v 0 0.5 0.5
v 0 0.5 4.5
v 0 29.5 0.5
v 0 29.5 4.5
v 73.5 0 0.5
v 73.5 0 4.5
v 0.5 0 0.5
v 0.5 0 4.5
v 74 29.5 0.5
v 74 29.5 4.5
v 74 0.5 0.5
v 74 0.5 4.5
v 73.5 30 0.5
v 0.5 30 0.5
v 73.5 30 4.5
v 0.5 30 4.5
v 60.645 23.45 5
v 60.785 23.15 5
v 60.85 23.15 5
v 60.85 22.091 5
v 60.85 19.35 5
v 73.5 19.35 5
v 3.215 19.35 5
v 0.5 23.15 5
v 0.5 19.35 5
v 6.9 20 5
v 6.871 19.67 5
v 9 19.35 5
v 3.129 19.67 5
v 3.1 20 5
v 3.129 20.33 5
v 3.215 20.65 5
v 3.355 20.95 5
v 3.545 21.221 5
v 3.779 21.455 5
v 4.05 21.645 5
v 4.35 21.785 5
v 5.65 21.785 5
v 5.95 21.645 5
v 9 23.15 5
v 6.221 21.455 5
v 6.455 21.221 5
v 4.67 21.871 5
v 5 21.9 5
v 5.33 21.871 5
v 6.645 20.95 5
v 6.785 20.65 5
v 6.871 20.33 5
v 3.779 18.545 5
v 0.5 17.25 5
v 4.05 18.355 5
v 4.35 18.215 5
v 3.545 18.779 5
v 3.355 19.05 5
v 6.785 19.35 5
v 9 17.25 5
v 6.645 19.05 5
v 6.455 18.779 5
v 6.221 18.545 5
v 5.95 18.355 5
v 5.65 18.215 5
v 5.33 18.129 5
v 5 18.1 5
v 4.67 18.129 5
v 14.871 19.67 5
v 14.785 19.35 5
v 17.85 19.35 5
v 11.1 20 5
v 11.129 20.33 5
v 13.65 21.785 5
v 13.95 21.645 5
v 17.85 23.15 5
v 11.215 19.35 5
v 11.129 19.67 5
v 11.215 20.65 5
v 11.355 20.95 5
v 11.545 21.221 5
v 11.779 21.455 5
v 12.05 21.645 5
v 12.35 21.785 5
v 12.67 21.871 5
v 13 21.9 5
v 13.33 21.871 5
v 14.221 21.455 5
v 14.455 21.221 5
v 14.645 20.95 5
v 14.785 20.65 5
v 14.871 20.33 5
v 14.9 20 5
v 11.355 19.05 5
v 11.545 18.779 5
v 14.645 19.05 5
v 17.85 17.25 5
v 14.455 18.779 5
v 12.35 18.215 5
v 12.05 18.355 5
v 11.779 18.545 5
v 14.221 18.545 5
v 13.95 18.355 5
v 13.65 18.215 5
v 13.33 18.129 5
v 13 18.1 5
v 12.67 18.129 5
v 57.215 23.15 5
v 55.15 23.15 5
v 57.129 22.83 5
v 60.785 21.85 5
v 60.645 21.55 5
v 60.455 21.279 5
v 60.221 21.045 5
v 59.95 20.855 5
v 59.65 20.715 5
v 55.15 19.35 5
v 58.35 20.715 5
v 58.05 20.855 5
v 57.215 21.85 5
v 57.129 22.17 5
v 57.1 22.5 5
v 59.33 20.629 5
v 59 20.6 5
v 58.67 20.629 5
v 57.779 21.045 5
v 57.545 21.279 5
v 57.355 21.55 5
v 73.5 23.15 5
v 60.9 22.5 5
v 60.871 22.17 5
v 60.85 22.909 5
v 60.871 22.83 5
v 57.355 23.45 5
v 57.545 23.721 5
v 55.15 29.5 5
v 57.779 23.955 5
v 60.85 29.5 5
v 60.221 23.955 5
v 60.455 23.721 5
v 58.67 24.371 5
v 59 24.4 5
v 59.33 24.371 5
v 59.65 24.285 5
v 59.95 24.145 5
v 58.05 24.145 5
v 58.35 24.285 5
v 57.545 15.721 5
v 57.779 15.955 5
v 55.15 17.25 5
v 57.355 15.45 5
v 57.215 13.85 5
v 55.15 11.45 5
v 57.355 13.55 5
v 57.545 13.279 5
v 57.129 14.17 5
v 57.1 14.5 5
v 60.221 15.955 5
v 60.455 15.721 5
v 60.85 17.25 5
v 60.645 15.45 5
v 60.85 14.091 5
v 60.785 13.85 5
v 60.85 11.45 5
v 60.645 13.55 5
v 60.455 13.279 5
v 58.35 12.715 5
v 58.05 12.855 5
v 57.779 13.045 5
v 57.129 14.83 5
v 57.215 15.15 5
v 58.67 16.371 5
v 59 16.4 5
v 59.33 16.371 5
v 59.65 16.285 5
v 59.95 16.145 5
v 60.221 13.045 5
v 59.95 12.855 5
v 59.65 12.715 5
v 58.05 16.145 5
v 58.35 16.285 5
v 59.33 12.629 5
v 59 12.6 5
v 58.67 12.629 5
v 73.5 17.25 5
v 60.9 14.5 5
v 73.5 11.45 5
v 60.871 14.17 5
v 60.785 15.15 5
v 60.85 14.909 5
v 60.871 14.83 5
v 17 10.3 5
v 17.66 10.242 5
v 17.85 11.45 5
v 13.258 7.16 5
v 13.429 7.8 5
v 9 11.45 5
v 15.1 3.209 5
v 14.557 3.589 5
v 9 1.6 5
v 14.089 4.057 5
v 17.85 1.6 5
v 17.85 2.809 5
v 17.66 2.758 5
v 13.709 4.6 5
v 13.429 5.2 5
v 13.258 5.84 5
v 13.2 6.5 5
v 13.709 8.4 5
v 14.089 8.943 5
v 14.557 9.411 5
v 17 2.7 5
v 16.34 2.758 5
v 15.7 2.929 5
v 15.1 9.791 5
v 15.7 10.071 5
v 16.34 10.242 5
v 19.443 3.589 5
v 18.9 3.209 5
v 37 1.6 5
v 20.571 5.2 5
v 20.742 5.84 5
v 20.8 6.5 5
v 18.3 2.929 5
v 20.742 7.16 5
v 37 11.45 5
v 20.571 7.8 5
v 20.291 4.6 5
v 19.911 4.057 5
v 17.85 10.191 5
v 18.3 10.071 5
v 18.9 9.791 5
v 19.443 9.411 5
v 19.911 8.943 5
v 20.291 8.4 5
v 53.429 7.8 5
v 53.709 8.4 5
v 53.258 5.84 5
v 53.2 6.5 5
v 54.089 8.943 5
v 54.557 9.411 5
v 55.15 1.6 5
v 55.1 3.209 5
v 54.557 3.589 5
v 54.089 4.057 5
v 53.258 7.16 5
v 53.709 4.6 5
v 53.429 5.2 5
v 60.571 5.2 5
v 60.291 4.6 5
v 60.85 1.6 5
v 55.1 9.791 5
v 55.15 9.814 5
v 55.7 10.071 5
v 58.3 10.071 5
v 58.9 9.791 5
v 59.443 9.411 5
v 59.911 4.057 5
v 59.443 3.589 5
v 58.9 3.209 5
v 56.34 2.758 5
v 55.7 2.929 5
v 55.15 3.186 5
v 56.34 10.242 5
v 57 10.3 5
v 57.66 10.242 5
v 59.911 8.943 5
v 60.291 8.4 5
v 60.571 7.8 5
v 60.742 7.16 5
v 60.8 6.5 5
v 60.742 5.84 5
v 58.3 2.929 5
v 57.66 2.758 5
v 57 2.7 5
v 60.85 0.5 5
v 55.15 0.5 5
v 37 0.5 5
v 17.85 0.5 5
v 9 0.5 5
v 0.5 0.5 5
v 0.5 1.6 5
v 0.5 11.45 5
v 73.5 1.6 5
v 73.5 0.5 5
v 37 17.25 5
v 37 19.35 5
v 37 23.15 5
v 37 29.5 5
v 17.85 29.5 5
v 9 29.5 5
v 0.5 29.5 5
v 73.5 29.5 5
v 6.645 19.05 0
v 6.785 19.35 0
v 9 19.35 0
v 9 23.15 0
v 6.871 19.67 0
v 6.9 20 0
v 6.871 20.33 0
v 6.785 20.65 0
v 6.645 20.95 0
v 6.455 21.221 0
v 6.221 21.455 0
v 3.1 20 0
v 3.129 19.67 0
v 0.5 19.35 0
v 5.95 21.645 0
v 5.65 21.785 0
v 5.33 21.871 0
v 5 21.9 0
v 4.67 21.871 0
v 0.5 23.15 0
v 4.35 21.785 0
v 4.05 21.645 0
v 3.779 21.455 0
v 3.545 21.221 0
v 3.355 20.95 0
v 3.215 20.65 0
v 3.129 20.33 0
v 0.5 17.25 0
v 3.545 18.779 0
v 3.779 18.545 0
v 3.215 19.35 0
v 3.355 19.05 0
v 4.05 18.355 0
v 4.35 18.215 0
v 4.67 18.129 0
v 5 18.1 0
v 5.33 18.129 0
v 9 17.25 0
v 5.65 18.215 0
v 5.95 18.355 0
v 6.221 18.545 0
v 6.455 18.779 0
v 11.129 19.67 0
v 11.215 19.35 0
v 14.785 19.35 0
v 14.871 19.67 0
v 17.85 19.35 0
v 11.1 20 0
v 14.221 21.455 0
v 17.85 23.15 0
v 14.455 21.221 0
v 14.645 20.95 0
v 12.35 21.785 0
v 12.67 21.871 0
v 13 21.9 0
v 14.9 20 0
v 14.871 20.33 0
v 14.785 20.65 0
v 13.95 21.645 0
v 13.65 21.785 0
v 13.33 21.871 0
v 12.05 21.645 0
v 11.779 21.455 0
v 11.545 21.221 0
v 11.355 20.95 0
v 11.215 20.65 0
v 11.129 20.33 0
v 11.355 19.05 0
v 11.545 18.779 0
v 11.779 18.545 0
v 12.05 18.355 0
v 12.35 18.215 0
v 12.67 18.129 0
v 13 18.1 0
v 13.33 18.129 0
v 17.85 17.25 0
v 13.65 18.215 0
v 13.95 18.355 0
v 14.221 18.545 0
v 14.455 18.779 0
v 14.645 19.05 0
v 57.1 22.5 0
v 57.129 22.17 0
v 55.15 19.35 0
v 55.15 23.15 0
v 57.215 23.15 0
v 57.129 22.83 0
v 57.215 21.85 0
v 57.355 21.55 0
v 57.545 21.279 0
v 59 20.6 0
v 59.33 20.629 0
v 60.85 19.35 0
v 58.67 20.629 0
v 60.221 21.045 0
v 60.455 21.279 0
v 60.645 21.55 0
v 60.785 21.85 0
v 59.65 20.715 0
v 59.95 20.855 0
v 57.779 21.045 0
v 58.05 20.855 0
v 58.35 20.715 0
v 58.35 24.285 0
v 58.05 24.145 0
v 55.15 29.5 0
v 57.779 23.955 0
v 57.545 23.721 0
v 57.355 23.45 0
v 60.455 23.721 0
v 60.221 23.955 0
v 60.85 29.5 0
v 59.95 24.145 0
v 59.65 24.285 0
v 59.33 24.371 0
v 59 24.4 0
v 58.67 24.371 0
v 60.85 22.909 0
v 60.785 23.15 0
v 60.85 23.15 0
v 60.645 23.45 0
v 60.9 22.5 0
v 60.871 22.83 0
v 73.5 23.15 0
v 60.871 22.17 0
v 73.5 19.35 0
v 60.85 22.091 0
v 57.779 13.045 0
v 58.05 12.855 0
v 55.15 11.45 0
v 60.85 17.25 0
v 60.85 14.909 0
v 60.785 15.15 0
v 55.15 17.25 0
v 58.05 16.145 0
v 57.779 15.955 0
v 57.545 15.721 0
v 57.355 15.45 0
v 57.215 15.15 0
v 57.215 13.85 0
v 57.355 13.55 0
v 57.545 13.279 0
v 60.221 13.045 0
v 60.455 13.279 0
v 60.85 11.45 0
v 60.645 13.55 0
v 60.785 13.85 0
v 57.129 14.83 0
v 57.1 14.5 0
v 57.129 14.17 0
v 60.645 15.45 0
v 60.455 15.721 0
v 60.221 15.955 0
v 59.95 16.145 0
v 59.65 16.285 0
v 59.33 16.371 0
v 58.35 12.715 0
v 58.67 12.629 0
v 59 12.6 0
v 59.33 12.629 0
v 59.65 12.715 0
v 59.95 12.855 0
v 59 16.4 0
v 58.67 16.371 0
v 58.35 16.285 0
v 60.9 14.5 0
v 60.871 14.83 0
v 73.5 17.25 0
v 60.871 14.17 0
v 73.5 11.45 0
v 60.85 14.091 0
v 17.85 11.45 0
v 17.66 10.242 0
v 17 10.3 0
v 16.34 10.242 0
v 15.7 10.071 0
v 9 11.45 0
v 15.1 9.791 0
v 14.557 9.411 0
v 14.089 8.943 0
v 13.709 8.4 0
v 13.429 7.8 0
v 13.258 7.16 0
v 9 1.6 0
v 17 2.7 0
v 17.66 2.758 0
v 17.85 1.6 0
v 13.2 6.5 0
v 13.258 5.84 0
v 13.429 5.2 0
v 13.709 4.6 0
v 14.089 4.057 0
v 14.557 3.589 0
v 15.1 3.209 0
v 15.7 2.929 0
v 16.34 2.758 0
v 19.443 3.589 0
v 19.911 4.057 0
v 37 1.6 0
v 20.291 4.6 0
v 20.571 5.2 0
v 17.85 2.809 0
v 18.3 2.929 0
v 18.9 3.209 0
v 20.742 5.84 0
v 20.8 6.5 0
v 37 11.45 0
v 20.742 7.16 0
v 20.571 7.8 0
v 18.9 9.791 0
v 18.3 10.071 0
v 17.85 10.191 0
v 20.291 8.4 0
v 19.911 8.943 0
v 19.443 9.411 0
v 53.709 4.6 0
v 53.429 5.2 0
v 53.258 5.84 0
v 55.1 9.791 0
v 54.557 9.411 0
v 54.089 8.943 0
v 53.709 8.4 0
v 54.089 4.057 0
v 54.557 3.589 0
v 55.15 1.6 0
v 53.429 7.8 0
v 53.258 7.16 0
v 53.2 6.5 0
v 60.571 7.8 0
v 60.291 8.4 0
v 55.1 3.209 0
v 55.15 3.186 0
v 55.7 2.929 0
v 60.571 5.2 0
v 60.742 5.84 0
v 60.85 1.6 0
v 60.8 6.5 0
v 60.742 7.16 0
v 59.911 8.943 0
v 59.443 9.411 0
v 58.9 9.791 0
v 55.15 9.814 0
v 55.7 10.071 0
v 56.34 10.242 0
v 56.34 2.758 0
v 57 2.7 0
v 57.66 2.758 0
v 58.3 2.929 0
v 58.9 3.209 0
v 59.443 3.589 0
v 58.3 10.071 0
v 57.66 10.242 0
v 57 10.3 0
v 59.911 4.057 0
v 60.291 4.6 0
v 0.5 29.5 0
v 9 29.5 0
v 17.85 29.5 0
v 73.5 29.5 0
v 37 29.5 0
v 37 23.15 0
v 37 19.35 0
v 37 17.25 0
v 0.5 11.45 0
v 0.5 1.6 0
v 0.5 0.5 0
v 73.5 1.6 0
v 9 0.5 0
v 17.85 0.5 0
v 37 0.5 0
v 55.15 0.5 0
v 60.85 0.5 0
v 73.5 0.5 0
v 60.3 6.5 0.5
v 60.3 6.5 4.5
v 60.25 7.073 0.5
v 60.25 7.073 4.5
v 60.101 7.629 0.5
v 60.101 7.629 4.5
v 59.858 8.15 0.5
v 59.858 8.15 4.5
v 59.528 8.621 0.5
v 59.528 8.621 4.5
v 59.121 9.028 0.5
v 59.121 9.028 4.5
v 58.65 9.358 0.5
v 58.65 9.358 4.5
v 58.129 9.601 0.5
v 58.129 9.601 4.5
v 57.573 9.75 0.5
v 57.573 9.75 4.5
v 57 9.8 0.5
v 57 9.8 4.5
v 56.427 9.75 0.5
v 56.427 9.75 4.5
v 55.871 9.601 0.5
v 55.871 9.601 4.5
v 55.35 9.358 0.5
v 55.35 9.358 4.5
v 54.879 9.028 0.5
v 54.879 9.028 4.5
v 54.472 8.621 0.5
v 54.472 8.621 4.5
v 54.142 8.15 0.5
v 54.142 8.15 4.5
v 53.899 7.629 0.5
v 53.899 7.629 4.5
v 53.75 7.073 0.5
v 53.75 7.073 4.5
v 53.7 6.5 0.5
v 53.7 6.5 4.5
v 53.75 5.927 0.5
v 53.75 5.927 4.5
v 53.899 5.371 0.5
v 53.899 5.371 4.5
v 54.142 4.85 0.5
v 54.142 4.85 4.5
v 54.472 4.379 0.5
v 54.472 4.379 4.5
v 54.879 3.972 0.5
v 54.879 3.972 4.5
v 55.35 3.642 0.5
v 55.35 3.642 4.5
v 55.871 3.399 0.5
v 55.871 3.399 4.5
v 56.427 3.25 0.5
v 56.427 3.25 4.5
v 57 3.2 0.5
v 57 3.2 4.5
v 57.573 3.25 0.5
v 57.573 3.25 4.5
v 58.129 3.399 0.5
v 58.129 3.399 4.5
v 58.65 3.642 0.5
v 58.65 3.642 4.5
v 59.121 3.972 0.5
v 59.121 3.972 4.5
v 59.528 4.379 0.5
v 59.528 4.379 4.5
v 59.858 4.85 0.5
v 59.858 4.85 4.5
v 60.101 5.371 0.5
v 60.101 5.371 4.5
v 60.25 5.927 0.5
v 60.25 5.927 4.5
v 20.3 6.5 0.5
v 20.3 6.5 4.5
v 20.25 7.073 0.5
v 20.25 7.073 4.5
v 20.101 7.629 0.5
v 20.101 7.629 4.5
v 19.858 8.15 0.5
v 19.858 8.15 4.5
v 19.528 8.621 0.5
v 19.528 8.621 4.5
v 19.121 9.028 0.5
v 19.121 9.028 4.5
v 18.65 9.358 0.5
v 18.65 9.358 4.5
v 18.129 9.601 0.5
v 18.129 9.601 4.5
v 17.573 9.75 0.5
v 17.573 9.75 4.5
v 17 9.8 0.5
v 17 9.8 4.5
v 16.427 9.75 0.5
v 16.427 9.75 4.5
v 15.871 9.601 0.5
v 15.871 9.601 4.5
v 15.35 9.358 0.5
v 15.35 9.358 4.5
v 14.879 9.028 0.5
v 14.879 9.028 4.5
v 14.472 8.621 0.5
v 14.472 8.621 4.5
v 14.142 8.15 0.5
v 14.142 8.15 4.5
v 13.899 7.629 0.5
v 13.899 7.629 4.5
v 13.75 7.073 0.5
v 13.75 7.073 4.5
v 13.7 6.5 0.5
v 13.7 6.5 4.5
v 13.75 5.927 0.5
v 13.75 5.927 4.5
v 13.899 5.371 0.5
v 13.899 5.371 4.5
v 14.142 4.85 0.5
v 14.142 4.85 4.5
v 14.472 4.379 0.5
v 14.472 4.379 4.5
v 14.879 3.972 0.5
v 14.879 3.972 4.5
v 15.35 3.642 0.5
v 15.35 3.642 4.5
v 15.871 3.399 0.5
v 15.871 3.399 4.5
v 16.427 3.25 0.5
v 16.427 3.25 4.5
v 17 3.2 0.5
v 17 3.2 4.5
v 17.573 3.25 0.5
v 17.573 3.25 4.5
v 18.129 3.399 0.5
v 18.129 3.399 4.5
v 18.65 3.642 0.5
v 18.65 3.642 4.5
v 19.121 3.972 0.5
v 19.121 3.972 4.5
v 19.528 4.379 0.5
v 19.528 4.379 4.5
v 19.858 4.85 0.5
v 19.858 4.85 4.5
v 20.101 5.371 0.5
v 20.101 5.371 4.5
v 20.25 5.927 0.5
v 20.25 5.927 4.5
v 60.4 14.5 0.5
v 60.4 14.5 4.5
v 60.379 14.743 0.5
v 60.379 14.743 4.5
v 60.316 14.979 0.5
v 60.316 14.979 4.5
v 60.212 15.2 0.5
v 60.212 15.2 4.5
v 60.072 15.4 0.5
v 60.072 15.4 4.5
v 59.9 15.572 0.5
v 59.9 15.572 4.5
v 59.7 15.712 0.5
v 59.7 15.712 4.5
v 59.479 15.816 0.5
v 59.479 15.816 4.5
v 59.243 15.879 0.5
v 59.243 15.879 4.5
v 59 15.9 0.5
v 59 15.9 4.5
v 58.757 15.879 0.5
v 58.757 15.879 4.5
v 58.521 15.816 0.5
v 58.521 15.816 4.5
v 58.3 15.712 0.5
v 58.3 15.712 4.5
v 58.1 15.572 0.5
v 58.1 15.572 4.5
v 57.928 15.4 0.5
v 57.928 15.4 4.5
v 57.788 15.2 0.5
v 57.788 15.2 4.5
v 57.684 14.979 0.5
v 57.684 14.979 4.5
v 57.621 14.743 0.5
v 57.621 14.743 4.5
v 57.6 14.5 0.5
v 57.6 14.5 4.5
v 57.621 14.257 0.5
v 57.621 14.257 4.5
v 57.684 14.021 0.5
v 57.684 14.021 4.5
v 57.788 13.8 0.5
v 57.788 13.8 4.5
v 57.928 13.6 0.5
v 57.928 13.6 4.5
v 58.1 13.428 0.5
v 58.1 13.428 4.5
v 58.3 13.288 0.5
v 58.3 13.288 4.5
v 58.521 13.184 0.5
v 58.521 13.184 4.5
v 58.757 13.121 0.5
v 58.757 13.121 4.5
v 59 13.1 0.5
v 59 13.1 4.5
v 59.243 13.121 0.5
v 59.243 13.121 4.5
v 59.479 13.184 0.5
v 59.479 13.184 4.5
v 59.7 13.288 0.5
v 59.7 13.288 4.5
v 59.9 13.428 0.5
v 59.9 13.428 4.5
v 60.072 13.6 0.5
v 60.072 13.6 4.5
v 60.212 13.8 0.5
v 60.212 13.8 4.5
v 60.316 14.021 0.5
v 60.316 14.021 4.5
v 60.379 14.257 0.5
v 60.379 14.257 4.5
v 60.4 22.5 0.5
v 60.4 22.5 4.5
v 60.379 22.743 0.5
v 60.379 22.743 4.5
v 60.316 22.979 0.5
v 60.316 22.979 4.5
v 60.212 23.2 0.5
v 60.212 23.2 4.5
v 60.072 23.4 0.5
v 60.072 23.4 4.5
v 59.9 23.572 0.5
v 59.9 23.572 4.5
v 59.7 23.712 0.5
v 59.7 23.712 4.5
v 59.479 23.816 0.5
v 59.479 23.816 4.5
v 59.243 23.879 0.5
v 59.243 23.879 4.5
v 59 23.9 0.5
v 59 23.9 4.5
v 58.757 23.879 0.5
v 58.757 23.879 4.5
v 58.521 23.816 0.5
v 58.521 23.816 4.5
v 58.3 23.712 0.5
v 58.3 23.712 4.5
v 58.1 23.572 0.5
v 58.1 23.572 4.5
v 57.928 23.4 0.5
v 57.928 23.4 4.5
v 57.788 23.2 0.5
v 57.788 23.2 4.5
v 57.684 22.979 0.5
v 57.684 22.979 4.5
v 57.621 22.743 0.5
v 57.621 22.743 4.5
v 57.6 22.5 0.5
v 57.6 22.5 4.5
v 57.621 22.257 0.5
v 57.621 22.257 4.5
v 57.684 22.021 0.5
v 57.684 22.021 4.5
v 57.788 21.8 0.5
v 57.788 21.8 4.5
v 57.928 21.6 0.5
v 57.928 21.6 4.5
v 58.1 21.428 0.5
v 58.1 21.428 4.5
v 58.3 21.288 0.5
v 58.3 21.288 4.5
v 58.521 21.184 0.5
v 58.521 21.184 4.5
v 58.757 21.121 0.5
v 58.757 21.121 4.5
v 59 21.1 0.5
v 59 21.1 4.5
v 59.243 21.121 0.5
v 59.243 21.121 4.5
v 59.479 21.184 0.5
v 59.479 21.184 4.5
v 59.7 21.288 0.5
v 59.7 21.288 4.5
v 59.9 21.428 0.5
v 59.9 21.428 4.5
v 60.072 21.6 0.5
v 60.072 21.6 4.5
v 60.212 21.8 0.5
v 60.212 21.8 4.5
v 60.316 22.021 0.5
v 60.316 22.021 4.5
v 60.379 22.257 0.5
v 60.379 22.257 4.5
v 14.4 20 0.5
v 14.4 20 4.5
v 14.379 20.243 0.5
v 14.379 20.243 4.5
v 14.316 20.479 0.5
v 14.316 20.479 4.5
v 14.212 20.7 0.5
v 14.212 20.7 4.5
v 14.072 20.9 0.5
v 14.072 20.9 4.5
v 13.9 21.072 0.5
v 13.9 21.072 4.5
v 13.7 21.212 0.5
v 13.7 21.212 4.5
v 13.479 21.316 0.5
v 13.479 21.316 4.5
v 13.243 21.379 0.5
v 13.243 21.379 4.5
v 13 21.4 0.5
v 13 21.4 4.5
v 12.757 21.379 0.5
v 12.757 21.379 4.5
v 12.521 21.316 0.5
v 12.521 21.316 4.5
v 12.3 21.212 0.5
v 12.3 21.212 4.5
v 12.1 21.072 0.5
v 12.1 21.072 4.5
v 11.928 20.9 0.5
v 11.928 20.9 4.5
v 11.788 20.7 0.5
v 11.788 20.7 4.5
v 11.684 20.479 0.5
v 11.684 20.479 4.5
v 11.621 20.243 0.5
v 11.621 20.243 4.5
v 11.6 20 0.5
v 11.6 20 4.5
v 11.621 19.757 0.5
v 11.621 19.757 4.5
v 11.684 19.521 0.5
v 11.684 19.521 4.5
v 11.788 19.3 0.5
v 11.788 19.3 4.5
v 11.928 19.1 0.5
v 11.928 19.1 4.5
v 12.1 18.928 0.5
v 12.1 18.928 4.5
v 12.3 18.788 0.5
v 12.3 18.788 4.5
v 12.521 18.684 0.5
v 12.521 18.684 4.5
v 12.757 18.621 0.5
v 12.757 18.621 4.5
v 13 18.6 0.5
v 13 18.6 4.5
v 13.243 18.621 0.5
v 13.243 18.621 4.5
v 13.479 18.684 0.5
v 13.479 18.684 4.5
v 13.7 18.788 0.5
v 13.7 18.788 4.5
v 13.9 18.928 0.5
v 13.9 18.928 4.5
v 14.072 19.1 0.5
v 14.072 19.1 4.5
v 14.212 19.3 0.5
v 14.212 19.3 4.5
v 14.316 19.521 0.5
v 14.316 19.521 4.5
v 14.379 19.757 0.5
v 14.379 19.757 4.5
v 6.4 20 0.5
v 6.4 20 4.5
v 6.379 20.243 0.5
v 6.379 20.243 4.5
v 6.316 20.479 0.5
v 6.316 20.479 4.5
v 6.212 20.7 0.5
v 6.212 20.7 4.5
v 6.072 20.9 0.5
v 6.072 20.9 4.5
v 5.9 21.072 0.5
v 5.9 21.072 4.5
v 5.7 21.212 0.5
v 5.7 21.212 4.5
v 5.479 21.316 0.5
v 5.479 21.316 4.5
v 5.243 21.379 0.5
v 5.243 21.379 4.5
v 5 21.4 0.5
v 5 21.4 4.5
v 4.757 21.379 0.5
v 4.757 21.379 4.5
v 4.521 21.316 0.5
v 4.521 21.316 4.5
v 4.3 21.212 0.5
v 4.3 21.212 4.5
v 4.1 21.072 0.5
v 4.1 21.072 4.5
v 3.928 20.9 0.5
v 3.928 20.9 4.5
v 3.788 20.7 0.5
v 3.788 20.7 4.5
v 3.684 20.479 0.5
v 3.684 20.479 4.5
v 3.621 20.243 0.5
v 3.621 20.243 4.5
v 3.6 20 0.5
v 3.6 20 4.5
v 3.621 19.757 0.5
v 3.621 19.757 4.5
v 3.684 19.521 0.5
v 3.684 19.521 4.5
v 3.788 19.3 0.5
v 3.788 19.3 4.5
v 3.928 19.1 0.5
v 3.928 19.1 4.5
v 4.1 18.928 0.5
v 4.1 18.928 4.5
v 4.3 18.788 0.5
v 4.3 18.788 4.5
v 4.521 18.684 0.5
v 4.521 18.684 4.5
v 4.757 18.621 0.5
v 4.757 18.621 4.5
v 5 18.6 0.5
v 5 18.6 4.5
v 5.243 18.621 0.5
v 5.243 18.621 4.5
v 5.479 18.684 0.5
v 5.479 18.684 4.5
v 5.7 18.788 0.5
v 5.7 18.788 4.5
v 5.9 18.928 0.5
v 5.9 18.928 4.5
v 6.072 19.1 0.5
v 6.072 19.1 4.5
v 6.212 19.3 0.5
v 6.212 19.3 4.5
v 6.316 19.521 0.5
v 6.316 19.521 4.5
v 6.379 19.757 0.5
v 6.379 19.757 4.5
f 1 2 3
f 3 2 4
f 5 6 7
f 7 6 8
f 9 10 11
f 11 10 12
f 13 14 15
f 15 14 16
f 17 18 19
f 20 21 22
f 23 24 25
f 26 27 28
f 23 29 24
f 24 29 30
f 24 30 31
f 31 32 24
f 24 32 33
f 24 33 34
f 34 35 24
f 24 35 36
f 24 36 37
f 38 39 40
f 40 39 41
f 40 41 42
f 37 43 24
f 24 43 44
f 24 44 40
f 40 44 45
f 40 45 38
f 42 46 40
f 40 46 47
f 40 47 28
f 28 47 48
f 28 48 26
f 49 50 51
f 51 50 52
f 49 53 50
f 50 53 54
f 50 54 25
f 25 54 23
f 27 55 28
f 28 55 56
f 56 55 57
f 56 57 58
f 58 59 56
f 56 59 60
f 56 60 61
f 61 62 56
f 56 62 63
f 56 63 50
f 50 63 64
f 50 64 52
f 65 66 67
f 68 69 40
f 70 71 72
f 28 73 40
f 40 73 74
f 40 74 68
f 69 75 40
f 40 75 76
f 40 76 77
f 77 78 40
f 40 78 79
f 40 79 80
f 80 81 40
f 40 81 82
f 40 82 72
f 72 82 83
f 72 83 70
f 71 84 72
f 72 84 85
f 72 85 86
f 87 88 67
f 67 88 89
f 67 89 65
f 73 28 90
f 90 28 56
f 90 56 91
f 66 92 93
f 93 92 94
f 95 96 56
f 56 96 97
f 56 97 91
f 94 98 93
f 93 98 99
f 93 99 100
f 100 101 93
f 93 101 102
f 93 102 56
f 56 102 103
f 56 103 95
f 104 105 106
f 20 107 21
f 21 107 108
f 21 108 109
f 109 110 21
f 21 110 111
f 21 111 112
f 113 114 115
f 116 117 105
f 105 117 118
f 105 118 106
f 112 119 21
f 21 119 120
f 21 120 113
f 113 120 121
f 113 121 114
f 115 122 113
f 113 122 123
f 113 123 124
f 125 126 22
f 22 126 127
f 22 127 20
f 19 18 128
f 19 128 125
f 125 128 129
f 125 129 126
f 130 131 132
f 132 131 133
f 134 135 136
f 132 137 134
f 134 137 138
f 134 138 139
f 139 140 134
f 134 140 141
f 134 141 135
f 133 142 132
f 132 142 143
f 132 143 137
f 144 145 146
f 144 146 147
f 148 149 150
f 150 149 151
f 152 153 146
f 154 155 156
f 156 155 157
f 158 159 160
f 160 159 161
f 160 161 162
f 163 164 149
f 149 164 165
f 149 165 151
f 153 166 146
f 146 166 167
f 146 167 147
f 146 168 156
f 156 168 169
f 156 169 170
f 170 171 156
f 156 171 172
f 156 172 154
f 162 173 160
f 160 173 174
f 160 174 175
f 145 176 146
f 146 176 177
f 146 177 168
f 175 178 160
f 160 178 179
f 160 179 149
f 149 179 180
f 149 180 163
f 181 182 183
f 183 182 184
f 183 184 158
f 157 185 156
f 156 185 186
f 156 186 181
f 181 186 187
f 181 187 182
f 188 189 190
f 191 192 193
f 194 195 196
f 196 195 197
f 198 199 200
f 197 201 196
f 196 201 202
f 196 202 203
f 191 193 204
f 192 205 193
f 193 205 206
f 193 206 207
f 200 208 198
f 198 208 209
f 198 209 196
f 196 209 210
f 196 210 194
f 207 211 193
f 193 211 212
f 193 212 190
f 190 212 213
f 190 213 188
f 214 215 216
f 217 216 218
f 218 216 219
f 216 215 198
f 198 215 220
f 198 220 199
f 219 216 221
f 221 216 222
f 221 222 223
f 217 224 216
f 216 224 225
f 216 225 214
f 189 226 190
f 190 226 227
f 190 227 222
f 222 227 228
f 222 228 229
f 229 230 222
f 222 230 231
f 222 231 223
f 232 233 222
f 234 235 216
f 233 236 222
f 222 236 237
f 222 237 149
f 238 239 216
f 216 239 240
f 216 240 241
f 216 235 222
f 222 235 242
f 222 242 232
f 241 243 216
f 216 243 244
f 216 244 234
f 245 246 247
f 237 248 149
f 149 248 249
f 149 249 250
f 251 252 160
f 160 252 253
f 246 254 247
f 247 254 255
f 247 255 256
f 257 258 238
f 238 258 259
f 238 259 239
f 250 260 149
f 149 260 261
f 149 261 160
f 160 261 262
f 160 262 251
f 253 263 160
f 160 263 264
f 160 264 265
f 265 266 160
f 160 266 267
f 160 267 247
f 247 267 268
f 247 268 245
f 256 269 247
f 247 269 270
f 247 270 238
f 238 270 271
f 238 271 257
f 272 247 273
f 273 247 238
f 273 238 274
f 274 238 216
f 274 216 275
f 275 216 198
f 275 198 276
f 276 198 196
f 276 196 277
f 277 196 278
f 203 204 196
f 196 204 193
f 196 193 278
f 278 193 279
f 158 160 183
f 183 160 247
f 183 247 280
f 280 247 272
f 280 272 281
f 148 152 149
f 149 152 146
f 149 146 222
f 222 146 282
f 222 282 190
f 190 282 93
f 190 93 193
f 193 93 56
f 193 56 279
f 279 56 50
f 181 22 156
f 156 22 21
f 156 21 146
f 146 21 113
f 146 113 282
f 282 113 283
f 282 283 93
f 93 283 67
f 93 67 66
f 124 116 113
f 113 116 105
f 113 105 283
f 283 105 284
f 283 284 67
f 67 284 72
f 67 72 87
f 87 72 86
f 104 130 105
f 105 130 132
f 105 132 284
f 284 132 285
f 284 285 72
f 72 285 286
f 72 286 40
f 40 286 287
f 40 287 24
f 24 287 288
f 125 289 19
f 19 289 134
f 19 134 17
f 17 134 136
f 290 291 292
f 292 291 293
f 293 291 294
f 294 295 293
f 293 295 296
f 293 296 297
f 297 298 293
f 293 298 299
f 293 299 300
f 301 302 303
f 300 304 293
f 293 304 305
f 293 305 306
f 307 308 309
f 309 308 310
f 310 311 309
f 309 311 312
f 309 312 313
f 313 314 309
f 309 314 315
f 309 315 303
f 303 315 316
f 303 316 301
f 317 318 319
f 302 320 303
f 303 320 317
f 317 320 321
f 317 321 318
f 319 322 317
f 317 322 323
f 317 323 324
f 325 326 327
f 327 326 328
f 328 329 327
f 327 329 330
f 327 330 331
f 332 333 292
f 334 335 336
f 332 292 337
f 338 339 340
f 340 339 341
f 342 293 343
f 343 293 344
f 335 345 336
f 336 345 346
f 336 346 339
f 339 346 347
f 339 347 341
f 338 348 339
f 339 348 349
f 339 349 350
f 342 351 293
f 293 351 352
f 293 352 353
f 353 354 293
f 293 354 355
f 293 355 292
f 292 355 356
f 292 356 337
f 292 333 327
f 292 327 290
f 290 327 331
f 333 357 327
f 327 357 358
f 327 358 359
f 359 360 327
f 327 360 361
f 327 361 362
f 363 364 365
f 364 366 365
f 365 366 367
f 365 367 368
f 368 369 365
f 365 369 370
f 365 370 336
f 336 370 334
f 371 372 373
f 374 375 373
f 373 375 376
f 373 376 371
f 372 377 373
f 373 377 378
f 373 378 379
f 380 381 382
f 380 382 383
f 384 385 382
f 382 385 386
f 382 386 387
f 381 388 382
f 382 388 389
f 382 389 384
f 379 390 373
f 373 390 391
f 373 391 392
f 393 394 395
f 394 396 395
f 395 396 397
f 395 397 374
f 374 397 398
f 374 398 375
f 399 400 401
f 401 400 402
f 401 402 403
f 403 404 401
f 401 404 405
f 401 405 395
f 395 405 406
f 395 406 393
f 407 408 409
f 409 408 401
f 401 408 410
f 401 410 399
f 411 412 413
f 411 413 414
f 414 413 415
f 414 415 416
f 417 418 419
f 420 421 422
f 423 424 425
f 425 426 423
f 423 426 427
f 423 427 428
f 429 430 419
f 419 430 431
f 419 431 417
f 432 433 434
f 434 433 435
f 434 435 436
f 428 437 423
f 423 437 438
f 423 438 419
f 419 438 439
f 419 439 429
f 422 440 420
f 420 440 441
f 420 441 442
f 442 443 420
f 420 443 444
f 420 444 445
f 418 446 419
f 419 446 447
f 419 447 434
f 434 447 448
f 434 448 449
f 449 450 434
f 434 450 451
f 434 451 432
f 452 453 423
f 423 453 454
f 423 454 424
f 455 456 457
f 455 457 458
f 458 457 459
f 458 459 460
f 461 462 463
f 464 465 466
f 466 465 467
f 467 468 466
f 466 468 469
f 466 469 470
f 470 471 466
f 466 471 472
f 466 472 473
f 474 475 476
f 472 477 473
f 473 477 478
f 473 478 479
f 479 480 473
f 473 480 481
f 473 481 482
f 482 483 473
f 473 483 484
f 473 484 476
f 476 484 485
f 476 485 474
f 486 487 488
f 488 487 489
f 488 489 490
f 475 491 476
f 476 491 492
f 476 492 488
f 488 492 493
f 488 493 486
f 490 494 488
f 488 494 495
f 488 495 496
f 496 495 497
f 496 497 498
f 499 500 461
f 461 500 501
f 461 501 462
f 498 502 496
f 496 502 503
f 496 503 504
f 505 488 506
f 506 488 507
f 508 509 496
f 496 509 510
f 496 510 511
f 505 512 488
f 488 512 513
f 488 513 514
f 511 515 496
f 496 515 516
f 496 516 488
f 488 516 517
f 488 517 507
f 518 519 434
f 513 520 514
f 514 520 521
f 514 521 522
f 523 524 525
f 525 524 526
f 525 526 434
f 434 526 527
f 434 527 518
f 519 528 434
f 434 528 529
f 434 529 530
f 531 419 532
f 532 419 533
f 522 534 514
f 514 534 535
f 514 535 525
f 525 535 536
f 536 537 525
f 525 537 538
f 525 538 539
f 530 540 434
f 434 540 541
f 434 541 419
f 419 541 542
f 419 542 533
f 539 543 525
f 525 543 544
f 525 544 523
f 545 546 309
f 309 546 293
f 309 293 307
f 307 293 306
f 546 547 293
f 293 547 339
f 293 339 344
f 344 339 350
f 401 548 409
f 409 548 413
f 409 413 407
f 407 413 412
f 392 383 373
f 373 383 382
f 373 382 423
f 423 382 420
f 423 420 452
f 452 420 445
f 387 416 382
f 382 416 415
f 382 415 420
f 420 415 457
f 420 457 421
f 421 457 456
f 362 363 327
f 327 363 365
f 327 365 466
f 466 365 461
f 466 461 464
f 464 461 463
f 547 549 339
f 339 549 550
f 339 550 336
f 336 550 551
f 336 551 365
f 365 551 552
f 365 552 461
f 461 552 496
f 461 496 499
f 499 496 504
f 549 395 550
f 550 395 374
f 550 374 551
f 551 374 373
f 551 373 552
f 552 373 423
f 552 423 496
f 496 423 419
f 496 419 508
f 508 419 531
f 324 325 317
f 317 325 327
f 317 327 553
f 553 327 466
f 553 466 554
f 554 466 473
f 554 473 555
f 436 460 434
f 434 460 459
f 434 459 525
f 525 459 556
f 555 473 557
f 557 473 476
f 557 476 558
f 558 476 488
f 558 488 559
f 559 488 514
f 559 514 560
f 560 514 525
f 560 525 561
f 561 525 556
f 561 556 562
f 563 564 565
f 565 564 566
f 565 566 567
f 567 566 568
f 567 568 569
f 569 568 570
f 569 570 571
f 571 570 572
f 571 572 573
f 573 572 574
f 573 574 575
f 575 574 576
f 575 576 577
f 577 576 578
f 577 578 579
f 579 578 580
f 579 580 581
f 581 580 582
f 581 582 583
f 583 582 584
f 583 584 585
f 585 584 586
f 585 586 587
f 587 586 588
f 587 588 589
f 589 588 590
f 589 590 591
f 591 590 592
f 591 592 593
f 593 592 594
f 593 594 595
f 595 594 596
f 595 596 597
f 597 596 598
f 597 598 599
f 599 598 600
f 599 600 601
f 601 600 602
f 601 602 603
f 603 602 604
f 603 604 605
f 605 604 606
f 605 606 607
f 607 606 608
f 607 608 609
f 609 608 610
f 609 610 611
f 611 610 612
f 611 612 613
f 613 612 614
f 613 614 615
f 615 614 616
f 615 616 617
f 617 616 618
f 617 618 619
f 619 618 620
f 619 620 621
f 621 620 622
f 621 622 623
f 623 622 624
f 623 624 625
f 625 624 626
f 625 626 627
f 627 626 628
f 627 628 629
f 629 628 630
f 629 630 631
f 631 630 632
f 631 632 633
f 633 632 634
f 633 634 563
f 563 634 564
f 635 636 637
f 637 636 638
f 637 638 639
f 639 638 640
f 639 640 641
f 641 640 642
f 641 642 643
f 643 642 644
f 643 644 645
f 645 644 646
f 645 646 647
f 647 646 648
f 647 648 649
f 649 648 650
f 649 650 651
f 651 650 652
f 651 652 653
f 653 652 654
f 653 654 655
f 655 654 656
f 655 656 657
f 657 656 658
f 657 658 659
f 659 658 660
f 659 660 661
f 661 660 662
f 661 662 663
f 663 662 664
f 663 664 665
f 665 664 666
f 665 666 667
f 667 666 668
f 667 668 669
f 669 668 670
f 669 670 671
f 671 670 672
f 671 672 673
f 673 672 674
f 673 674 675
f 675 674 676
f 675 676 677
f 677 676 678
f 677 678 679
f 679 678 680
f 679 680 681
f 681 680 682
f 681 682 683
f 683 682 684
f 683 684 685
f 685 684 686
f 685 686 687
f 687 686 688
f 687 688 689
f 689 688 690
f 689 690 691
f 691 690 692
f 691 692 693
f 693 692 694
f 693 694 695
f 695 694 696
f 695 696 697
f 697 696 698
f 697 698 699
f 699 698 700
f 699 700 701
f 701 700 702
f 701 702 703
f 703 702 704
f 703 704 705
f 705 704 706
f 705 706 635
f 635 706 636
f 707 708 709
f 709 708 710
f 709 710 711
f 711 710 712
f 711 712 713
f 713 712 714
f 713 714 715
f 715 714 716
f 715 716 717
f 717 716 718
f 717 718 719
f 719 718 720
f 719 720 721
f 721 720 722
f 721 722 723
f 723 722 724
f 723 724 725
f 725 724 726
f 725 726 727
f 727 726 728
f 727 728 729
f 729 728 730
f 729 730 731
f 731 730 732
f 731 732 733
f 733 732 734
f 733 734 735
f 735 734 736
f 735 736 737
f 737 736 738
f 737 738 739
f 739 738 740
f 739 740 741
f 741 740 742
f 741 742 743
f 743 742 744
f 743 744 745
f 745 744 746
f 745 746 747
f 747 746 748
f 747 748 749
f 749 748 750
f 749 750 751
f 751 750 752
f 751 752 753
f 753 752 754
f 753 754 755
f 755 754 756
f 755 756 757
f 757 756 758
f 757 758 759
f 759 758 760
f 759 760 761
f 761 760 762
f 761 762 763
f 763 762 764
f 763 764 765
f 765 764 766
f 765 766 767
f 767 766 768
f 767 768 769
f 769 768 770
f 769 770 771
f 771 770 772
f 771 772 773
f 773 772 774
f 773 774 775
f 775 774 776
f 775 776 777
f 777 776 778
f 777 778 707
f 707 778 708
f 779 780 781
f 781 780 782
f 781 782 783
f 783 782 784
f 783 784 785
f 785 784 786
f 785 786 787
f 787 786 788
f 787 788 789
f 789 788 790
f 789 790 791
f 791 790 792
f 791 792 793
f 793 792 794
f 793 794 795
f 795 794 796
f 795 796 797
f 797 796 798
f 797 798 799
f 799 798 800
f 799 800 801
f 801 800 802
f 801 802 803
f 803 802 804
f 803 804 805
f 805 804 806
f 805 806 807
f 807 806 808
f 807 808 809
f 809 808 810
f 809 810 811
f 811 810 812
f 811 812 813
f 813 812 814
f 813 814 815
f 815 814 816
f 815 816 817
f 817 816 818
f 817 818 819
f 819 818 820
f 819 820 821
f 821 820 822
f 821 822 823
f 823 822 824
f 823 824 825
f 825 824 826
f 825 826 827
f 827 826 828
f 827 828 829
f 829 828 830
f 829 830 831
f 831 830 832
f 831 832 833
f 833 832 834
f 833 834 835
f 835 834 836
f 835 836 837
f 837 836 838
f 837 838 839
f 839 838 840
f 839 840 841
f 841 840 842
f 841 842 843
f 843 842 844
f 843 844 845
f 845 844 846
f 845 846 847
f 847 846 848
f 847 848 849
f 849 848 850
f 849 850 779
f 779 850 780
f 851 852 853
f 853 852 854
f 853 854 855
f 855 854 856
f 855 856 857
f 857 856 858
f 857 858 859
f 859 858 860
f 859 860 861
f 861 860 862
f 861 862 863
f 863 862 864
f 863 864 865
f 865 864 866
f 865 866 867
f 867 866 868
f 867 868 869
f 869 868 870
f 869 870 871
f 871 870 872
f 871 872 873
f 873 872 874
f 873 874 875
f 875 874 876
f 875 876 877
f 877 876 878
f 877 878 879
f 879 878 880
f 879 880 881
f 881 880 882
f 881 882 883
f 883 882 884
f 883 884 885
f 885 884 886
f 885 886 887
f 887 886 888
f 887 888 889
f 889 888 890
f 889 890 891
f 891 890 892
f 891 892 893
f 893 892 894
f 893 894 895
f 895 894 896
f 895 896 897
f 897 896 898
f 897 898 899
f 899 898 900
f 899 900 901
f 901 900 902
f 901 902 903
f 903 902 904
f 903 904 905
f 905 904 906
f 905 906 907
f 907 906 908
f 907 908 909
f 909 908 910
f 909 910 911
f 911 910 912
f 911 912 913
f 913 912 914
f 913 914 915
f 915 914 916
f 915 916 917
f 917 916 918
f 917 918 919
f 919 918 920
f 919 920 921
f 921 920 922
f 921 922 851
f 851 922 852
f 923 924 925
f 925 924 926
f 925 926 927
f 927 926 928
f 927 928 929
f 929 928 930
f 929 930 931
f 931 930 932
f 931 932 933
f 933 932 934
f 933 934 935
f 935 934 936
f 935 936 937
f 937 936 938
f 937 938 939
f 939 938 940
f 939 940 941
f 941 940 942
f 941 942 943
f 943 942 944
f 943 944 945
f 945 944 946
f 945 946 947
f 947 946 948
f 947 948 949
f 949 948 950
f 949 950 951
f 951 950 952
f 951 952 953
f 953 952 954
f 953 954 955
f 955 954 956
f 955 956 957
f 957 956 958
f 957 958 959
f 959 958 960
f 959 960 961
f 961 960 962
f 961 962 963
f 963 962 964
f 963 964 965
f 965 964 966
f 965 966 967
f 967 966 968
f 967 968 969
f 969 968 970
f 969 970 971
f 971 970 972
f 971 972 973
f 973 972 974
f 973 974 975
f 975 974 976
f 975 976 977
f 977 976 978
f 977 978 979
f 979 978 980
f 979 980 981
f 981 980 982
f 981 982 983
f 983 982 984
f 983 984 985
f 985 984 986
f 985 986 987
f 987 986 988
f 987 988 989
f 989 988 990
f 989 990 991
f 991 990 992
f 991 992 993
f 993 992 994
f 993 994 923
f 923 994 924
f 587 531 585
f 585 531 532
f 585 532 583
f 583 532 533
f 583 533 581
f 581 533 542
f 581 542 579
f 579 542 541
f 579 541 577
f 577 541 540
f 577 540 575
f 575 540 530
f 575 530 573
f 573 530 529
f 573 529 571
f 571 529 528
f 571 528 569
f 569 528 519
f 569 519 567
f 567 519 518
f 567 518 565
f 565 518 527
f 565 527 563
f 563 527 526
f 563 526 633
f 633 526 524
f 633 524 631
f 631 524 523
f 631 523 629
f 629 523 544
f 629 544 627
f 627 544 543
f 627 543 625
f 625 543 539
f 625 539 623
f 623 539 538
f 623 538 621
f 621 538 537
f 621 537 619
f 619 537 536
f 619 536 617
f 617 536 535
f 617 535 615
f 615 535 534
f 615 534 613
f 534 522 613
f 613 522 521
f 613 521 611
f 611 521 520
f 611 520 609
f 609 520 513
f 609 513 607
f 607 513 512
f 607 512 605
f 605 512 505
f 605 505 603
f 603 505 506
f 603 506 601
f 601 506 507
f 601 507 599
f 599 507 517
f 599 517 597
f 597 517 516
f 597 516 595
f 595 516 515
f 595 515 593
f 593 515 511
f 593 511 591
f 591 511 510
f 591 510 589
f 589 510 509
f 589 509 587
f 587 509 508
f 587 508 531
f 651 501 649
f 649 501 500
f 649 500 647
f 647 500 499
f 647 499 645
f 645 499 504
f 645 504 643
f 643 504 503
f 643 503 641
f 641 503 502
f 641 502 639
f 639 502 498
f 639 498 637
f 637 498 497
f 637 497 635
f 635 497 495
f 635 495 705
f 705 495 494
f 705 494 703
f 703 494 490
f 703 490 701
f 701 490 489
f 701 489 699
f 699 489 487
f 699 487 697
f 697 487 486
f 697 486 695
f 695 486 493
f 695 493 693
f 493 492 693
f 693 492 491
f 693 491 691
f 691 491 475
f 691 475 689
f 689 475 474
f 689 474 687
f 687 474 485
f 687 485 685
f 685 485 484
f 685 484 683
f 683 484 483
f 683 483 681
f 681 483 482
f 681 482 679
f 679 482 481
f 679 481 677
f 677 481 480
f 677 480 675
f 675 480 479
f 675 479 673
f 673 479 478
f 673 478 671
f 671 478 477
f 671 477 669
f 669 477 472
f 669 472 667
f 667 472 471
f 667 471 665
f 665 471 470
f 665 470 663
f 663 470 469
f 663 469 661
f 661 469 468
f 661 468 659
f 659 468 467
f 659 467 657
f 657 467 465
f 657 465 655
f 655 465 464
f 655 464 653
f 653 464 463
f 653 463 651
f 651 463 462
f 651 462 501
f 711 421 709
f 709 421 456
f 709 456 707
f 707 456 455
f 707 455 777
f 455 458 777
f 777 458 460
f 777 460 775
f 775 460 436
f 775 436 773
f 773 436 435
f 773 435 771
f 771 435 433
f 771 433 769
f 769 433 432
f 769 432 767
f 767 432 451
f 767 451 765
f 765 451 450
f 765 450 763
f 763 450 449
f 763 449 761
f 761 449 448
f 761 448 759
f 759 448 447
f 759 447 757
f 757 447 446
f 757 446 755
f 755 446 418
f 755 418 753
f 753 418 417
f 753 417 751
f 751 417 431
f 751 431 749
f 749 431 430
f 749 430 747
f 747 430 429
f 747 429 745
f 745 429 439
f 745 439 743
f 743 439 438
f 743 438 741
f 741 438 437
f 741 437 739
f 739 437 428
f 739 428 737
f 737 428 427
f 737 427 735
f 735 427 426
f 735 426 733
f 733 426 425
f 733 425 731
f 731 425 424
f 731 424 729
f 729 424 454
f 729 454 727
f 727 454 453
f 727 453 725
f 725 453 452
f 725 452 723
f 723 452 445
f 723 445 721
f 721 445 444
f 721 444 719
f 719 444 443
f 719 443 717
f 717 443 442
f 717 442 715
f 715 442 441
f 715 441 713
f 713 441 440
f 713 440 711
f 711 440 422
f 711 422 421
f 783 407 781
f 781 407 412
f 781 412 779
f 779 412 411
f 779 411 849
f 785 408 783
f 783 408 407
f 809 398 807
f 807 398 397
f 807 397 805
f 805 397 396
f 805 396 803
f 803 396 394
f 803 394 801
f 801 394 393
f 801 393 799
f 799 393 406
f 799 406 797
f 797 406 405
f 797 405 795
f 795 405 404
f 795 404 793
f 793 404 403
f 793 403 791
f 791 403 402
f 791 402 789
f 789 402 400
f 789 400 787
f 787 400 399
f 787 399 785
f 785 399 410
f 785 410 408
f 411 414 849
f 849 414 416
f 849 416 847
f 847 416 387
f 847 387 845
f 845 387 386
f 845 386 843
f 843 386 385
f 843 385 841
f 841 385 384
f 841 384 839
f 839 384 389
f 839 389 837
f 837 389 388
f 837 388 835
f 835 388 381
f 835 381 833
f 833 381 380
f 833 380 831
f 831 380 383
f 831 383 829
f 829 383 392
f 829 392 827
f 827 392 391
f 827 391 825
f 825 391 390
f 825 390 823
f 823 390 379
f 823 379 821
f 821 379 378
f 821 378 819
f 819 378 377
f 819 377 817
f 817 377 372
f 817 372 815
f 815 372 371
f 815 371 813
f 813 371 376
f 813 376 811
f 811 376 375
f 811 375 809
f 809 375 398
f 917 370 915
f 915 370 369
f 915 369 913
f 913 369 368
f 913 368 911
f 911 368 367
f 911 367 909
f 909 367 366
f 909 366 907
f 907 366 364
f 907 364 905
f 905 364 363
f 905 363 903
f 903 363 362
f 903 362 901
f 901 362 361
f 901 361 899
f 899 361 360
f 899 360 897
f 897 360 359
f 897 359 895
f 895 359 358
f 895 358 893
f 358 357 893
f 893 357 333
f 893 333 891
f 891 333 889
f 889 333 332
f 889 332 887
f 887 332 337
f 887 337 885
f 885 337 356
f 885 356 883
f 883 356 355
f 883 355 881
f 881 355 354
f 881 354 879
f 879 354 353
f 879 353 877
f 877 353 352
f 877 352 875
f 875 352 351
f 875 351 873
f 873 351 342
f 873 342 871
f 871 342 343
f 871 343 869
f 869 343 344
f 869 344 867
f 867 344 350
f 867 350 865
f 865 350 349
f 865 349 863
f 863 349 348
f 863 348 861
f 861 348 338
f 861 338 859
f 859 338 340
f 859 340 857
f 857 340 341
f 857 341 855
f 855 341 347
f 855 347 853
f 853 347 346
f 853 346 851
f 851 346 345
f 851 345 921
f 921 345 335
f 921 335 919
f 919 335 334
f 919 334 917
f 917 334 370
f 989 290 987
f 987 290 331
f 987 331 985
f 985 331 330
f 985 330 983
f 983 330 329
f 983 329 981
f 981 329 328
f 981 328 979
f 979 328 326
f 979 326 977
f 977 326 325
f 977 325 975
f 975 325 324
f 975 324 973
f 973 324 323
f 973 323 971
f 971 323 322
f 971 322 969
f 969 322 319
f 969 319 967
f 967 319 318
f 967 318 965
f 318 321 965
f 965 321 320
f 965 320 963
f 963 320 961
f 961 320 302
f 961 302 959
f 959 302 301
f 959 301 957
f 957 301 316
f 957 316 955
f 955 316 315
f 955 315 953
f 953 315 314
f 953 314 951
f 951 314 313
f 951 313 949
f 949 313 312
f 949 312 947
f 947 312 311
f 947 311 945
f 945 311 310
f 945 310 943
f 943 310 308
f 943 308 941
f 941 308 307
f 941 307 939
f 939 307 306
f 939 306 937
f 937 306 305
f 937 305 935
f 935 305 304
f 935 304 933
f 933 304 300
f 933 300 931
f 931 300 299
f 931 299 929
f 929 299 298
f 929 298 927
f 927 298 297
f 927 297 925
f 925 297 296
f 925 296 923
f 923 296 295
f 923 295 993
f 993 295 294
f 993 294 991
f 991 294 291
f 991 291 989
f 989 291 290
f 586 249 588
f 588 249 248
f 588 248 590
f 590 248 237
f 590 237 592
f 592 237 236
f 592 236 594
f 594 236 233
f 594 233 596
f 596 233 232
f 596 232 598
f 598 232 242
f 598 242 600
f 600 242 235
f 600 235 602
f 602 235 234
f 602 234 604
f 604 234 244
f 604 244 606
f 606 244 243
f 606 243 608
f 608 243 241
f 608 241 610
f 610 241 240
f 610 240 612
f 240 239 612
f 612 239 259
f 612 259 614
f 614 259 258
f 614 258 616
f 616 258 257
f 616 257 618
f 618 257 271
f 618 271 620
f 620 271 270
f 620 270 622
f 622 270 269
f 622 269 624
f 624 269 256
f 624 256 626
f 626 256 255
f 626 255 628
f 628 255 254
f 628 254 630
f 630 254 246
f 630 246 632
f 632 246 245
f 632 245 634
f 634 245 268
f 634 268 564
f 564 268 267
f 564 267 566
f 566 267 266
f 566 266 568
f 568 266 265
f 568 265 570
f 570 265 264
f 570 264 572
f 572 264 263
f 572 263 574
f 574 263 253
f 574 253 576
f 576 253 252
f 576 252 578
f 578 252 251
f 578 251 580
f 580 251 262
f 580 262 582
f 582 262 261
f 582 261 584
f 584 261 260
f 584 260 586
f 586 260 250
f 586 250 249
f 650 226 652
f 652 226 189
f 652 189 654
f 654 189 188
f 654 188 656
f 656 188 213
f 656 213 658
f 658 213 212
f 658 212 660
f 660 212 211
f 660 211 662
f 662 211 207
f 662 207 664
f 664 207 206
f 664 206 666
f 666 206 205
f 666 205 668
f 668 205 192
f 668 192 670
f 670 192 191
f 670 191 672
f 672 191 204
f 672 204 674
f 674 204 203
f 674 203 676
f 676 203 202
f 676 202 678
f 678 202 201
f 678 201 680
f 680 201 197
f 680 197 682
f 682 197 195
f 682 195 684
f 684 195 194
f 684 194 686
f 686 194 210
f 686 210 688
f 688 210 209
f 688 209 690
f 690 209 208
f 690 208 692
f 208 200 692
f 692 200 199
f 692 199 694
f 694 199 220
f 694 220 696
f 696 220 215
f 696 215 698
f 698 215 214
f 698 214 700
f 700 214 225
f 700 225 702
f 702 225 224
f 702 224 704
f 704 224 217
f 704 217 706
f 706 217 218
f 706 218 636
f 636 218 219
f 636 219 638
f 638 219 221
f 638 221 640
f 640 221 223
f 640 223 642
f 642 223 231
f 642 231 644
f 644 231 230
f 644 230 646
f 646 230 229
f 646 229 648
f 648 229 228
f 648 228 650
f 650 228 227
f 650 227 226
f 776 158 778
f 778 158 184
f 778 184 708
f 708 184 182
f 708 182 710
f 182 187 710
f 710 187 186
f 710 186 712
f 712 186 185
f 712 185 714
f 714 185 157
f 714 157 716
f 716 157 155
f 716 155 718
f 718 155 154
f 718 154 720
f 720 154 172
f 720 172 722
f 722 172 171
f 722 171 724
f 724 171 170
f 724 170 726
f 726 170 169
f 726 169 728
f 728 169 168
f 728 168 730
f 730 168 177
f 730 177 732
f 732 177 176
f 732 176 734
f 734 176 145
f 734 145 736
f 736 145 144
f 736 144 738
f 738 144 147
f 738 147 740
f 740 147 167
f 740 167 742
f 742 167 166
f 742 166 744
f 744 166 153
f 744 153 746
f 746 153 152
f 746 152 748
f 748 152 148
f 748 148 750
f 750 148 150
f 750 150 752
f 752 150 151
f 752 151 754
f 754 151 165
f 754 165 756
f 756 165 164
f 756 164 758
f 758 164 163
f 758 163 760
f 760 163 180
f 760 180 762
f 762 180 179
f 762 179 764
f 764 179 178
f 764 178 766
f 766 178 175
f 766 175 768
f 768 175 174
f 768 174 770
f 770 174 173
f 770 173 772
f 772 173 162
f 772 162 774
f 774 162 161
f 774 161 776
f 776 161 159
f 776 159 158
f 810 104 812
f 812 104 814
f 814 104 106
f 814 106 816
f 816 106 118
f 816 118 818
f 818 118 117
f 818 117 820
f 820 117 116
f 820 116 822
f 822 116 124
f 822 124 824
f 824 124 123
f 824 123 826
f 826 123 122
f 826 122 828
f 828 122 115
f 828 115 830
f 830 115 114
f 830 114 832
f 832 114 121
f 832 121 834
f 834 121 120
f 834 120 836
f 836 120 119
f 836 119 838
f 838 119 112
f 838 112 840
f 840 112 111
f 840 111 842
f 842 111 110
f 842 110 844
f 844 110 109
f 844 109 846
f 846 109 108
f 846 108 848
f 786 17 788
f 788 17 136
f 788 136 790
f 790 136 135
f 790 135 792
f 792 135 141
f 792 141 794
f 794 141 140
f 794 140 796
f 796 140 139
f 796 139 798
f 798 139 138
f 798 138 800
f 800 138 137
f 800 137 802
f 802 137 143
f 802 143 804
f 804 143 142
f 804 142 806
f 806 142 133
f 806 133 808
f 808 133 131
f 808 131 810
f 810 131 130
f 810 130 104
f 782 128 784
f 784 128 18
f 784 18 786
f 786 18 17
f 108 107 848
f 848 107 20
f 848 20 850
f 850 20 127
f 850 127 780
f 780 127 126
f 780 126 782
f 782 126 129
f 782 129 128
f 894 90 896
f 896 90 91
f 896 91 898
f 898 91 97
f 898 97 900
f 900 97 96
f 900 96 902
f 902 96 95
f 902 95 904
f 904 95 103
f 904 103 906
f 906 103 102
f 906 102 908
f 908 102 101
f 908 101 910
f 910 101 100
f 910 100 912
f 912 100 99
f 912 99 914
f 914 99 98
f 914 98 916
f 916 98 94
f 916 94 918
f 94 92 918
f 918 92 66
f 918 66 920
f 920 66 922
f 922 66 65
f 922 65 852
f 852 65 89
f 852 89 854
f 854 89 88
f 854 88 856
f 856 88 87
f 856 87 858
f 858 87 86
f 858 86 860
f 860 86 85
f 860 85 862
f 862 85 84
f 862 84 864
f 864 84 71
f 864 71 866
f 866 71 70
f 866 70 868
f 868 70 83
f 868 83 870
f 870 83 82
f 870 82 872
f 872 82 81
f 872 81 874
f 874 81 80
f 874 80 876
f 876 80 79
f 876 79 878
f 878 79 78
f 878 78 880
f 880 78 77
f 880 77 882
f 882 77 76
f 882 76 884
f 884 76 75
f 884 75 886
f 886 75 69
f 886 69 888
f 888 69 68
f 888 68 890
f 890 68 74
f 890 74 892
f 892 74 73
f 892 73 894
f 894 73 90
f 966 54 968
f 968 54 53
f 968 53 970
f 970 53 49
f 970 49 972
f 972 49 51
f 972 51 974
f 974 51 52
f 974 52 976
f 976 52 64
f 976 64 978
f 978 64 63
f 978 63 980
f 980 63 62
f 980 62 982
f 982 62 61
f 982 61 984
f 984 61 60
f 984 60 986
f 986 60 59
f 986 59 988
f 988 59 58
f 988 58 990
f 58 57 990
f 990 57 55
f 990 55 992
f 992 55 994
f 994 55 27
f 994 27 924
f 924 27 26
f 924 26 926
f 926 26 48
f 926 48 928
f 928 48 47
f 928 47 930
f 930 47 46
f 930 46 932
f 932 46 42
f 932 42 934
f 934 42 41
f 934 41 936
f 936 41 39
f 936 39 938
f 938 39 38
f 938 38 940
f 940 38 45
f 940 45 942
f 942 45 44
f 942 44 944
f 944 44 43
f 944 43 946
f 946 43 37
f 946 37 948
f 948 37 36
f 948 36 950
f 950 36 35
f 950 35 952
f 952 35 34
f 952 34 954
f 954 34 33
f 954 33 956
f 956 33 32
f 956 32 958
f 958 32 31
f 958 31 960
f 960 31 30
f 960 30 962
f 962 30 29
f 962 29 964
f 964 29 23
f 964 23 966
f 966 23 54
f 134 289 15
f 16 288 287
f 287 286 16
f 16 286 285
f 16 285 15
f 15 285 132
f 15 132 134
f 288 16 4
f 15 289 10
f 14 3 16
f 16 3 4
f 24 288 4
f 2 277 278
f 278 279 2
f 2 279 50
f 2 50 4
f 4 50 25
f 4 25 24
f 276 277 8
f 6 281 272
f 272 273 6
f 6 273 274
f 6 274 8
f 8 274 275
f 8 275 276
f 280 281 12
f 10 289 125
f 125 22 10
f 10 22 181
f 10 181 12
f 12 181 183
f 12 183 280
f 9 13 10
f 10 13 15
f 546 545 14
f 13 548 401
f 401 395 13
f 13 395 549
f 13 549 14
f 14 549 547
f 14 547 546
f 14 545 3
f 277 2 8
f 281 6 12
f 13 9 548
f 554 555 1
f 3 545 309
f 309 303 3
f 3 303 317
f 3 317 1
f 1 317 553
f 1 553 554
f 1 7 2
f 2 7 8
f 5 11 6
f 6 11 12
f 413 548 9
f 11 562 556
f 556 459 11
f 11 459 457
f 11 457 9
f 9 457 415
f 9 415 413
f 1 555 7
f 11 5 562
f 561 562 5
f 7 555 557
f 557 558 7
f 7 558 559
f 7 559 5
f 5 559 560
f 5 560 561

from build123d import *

# Parameters (mm, degrees)
SKETCH1_W            = 74
SKETCH1_H            = 30
BOSS_EXTRUDE1_DEPTH  = 5
M6_CLEARANCE_HOLE1_D = 6.6
SKETCH5_R            = 1.4
CUT_EXTRUDE1_DEPTH   = 5
SKETCH6_R            = 1.4
CUT_EXTRUDE2_DEPTH   = 5
CHAMFER1_SIZE        = 0.5


with BuildPart() as part:
    # Sketch1 → Boss-Extrude1 (new body)
    with BuildSketch(Plane.XY):
        with Locations((37, 15)):
            Rectangle(SKETCH1_W, SKETCH1_H)
    extrude(amount=BOSS_EXTRUDE1_DEPTH)

    # M6 Clearance Hole1 (through all)
    with Locations(Plane.XY.offset(5)):
        with Locations((17, 6.5), (57, 6.5)):
            Hole(M6_CLEARANCE_HOLE1_D / 2)

    # Sketch5 → Cut-Extrude1 (cut)
    with BuildSketch(Plane.XY.offset(5)):
        with Locations((59, 22.5)):
            Circle(SKETCH5_R)
        with Locations((59, 14.5)):
            Circle(SKETCH5_R)
    extrude(amount=-CUT_EXTRUDE1_DEPTH, mode=Mode.SUBTRACT)

    # Sketch6 → Cut-Extrude2 (cut)
    with BuildSketch(Plane.XY.offset(5)):
        with Locations((5, 20)):
            Circle(SKETCH6_R)
        with Locations((13, 20)):
            Circle(SKETCH6_R)
    extrude(amount=-CUT_EXTRUDE2_DEPTH, mode=Mode.SUBTRACT)

    # Chamfer1
    chamfer1_edges = [part.edges().sort_by_distance(p)[0] for p in [
        (74, 15, 5),
        (37, 30, 5),
        (60.3, 6.5, 5),
        (60.3, 6.5, 0),
        (20.3, 6.5, 5),
        (20.3, 6.5, 0),
        (0, 15, 5),
        (37, 30, 0),
        (74, 15, 0),
        (37, 0, 0),
        (0, 15, 0),
        (57.6, 22.5, 0),
        (57.6, 22.5, 5),
        (37, 0, 5),
        (57.6, 14.5, 0),
        (57.6, 14.5, 5),
        (0, 30, 2.5),
        (74, 30, 2.5),
        (74, 0, 2.5),
        (0, 0, 2.5),
        (3.6, 20, 0),
        (3.6, 20, 5),
        (11.6, 20, 0),
        (11.6, 20, 5),
    ]]
    chamfer(chamfer1_edges, length=CHAMFER1_SIZE)


solid = part.part
